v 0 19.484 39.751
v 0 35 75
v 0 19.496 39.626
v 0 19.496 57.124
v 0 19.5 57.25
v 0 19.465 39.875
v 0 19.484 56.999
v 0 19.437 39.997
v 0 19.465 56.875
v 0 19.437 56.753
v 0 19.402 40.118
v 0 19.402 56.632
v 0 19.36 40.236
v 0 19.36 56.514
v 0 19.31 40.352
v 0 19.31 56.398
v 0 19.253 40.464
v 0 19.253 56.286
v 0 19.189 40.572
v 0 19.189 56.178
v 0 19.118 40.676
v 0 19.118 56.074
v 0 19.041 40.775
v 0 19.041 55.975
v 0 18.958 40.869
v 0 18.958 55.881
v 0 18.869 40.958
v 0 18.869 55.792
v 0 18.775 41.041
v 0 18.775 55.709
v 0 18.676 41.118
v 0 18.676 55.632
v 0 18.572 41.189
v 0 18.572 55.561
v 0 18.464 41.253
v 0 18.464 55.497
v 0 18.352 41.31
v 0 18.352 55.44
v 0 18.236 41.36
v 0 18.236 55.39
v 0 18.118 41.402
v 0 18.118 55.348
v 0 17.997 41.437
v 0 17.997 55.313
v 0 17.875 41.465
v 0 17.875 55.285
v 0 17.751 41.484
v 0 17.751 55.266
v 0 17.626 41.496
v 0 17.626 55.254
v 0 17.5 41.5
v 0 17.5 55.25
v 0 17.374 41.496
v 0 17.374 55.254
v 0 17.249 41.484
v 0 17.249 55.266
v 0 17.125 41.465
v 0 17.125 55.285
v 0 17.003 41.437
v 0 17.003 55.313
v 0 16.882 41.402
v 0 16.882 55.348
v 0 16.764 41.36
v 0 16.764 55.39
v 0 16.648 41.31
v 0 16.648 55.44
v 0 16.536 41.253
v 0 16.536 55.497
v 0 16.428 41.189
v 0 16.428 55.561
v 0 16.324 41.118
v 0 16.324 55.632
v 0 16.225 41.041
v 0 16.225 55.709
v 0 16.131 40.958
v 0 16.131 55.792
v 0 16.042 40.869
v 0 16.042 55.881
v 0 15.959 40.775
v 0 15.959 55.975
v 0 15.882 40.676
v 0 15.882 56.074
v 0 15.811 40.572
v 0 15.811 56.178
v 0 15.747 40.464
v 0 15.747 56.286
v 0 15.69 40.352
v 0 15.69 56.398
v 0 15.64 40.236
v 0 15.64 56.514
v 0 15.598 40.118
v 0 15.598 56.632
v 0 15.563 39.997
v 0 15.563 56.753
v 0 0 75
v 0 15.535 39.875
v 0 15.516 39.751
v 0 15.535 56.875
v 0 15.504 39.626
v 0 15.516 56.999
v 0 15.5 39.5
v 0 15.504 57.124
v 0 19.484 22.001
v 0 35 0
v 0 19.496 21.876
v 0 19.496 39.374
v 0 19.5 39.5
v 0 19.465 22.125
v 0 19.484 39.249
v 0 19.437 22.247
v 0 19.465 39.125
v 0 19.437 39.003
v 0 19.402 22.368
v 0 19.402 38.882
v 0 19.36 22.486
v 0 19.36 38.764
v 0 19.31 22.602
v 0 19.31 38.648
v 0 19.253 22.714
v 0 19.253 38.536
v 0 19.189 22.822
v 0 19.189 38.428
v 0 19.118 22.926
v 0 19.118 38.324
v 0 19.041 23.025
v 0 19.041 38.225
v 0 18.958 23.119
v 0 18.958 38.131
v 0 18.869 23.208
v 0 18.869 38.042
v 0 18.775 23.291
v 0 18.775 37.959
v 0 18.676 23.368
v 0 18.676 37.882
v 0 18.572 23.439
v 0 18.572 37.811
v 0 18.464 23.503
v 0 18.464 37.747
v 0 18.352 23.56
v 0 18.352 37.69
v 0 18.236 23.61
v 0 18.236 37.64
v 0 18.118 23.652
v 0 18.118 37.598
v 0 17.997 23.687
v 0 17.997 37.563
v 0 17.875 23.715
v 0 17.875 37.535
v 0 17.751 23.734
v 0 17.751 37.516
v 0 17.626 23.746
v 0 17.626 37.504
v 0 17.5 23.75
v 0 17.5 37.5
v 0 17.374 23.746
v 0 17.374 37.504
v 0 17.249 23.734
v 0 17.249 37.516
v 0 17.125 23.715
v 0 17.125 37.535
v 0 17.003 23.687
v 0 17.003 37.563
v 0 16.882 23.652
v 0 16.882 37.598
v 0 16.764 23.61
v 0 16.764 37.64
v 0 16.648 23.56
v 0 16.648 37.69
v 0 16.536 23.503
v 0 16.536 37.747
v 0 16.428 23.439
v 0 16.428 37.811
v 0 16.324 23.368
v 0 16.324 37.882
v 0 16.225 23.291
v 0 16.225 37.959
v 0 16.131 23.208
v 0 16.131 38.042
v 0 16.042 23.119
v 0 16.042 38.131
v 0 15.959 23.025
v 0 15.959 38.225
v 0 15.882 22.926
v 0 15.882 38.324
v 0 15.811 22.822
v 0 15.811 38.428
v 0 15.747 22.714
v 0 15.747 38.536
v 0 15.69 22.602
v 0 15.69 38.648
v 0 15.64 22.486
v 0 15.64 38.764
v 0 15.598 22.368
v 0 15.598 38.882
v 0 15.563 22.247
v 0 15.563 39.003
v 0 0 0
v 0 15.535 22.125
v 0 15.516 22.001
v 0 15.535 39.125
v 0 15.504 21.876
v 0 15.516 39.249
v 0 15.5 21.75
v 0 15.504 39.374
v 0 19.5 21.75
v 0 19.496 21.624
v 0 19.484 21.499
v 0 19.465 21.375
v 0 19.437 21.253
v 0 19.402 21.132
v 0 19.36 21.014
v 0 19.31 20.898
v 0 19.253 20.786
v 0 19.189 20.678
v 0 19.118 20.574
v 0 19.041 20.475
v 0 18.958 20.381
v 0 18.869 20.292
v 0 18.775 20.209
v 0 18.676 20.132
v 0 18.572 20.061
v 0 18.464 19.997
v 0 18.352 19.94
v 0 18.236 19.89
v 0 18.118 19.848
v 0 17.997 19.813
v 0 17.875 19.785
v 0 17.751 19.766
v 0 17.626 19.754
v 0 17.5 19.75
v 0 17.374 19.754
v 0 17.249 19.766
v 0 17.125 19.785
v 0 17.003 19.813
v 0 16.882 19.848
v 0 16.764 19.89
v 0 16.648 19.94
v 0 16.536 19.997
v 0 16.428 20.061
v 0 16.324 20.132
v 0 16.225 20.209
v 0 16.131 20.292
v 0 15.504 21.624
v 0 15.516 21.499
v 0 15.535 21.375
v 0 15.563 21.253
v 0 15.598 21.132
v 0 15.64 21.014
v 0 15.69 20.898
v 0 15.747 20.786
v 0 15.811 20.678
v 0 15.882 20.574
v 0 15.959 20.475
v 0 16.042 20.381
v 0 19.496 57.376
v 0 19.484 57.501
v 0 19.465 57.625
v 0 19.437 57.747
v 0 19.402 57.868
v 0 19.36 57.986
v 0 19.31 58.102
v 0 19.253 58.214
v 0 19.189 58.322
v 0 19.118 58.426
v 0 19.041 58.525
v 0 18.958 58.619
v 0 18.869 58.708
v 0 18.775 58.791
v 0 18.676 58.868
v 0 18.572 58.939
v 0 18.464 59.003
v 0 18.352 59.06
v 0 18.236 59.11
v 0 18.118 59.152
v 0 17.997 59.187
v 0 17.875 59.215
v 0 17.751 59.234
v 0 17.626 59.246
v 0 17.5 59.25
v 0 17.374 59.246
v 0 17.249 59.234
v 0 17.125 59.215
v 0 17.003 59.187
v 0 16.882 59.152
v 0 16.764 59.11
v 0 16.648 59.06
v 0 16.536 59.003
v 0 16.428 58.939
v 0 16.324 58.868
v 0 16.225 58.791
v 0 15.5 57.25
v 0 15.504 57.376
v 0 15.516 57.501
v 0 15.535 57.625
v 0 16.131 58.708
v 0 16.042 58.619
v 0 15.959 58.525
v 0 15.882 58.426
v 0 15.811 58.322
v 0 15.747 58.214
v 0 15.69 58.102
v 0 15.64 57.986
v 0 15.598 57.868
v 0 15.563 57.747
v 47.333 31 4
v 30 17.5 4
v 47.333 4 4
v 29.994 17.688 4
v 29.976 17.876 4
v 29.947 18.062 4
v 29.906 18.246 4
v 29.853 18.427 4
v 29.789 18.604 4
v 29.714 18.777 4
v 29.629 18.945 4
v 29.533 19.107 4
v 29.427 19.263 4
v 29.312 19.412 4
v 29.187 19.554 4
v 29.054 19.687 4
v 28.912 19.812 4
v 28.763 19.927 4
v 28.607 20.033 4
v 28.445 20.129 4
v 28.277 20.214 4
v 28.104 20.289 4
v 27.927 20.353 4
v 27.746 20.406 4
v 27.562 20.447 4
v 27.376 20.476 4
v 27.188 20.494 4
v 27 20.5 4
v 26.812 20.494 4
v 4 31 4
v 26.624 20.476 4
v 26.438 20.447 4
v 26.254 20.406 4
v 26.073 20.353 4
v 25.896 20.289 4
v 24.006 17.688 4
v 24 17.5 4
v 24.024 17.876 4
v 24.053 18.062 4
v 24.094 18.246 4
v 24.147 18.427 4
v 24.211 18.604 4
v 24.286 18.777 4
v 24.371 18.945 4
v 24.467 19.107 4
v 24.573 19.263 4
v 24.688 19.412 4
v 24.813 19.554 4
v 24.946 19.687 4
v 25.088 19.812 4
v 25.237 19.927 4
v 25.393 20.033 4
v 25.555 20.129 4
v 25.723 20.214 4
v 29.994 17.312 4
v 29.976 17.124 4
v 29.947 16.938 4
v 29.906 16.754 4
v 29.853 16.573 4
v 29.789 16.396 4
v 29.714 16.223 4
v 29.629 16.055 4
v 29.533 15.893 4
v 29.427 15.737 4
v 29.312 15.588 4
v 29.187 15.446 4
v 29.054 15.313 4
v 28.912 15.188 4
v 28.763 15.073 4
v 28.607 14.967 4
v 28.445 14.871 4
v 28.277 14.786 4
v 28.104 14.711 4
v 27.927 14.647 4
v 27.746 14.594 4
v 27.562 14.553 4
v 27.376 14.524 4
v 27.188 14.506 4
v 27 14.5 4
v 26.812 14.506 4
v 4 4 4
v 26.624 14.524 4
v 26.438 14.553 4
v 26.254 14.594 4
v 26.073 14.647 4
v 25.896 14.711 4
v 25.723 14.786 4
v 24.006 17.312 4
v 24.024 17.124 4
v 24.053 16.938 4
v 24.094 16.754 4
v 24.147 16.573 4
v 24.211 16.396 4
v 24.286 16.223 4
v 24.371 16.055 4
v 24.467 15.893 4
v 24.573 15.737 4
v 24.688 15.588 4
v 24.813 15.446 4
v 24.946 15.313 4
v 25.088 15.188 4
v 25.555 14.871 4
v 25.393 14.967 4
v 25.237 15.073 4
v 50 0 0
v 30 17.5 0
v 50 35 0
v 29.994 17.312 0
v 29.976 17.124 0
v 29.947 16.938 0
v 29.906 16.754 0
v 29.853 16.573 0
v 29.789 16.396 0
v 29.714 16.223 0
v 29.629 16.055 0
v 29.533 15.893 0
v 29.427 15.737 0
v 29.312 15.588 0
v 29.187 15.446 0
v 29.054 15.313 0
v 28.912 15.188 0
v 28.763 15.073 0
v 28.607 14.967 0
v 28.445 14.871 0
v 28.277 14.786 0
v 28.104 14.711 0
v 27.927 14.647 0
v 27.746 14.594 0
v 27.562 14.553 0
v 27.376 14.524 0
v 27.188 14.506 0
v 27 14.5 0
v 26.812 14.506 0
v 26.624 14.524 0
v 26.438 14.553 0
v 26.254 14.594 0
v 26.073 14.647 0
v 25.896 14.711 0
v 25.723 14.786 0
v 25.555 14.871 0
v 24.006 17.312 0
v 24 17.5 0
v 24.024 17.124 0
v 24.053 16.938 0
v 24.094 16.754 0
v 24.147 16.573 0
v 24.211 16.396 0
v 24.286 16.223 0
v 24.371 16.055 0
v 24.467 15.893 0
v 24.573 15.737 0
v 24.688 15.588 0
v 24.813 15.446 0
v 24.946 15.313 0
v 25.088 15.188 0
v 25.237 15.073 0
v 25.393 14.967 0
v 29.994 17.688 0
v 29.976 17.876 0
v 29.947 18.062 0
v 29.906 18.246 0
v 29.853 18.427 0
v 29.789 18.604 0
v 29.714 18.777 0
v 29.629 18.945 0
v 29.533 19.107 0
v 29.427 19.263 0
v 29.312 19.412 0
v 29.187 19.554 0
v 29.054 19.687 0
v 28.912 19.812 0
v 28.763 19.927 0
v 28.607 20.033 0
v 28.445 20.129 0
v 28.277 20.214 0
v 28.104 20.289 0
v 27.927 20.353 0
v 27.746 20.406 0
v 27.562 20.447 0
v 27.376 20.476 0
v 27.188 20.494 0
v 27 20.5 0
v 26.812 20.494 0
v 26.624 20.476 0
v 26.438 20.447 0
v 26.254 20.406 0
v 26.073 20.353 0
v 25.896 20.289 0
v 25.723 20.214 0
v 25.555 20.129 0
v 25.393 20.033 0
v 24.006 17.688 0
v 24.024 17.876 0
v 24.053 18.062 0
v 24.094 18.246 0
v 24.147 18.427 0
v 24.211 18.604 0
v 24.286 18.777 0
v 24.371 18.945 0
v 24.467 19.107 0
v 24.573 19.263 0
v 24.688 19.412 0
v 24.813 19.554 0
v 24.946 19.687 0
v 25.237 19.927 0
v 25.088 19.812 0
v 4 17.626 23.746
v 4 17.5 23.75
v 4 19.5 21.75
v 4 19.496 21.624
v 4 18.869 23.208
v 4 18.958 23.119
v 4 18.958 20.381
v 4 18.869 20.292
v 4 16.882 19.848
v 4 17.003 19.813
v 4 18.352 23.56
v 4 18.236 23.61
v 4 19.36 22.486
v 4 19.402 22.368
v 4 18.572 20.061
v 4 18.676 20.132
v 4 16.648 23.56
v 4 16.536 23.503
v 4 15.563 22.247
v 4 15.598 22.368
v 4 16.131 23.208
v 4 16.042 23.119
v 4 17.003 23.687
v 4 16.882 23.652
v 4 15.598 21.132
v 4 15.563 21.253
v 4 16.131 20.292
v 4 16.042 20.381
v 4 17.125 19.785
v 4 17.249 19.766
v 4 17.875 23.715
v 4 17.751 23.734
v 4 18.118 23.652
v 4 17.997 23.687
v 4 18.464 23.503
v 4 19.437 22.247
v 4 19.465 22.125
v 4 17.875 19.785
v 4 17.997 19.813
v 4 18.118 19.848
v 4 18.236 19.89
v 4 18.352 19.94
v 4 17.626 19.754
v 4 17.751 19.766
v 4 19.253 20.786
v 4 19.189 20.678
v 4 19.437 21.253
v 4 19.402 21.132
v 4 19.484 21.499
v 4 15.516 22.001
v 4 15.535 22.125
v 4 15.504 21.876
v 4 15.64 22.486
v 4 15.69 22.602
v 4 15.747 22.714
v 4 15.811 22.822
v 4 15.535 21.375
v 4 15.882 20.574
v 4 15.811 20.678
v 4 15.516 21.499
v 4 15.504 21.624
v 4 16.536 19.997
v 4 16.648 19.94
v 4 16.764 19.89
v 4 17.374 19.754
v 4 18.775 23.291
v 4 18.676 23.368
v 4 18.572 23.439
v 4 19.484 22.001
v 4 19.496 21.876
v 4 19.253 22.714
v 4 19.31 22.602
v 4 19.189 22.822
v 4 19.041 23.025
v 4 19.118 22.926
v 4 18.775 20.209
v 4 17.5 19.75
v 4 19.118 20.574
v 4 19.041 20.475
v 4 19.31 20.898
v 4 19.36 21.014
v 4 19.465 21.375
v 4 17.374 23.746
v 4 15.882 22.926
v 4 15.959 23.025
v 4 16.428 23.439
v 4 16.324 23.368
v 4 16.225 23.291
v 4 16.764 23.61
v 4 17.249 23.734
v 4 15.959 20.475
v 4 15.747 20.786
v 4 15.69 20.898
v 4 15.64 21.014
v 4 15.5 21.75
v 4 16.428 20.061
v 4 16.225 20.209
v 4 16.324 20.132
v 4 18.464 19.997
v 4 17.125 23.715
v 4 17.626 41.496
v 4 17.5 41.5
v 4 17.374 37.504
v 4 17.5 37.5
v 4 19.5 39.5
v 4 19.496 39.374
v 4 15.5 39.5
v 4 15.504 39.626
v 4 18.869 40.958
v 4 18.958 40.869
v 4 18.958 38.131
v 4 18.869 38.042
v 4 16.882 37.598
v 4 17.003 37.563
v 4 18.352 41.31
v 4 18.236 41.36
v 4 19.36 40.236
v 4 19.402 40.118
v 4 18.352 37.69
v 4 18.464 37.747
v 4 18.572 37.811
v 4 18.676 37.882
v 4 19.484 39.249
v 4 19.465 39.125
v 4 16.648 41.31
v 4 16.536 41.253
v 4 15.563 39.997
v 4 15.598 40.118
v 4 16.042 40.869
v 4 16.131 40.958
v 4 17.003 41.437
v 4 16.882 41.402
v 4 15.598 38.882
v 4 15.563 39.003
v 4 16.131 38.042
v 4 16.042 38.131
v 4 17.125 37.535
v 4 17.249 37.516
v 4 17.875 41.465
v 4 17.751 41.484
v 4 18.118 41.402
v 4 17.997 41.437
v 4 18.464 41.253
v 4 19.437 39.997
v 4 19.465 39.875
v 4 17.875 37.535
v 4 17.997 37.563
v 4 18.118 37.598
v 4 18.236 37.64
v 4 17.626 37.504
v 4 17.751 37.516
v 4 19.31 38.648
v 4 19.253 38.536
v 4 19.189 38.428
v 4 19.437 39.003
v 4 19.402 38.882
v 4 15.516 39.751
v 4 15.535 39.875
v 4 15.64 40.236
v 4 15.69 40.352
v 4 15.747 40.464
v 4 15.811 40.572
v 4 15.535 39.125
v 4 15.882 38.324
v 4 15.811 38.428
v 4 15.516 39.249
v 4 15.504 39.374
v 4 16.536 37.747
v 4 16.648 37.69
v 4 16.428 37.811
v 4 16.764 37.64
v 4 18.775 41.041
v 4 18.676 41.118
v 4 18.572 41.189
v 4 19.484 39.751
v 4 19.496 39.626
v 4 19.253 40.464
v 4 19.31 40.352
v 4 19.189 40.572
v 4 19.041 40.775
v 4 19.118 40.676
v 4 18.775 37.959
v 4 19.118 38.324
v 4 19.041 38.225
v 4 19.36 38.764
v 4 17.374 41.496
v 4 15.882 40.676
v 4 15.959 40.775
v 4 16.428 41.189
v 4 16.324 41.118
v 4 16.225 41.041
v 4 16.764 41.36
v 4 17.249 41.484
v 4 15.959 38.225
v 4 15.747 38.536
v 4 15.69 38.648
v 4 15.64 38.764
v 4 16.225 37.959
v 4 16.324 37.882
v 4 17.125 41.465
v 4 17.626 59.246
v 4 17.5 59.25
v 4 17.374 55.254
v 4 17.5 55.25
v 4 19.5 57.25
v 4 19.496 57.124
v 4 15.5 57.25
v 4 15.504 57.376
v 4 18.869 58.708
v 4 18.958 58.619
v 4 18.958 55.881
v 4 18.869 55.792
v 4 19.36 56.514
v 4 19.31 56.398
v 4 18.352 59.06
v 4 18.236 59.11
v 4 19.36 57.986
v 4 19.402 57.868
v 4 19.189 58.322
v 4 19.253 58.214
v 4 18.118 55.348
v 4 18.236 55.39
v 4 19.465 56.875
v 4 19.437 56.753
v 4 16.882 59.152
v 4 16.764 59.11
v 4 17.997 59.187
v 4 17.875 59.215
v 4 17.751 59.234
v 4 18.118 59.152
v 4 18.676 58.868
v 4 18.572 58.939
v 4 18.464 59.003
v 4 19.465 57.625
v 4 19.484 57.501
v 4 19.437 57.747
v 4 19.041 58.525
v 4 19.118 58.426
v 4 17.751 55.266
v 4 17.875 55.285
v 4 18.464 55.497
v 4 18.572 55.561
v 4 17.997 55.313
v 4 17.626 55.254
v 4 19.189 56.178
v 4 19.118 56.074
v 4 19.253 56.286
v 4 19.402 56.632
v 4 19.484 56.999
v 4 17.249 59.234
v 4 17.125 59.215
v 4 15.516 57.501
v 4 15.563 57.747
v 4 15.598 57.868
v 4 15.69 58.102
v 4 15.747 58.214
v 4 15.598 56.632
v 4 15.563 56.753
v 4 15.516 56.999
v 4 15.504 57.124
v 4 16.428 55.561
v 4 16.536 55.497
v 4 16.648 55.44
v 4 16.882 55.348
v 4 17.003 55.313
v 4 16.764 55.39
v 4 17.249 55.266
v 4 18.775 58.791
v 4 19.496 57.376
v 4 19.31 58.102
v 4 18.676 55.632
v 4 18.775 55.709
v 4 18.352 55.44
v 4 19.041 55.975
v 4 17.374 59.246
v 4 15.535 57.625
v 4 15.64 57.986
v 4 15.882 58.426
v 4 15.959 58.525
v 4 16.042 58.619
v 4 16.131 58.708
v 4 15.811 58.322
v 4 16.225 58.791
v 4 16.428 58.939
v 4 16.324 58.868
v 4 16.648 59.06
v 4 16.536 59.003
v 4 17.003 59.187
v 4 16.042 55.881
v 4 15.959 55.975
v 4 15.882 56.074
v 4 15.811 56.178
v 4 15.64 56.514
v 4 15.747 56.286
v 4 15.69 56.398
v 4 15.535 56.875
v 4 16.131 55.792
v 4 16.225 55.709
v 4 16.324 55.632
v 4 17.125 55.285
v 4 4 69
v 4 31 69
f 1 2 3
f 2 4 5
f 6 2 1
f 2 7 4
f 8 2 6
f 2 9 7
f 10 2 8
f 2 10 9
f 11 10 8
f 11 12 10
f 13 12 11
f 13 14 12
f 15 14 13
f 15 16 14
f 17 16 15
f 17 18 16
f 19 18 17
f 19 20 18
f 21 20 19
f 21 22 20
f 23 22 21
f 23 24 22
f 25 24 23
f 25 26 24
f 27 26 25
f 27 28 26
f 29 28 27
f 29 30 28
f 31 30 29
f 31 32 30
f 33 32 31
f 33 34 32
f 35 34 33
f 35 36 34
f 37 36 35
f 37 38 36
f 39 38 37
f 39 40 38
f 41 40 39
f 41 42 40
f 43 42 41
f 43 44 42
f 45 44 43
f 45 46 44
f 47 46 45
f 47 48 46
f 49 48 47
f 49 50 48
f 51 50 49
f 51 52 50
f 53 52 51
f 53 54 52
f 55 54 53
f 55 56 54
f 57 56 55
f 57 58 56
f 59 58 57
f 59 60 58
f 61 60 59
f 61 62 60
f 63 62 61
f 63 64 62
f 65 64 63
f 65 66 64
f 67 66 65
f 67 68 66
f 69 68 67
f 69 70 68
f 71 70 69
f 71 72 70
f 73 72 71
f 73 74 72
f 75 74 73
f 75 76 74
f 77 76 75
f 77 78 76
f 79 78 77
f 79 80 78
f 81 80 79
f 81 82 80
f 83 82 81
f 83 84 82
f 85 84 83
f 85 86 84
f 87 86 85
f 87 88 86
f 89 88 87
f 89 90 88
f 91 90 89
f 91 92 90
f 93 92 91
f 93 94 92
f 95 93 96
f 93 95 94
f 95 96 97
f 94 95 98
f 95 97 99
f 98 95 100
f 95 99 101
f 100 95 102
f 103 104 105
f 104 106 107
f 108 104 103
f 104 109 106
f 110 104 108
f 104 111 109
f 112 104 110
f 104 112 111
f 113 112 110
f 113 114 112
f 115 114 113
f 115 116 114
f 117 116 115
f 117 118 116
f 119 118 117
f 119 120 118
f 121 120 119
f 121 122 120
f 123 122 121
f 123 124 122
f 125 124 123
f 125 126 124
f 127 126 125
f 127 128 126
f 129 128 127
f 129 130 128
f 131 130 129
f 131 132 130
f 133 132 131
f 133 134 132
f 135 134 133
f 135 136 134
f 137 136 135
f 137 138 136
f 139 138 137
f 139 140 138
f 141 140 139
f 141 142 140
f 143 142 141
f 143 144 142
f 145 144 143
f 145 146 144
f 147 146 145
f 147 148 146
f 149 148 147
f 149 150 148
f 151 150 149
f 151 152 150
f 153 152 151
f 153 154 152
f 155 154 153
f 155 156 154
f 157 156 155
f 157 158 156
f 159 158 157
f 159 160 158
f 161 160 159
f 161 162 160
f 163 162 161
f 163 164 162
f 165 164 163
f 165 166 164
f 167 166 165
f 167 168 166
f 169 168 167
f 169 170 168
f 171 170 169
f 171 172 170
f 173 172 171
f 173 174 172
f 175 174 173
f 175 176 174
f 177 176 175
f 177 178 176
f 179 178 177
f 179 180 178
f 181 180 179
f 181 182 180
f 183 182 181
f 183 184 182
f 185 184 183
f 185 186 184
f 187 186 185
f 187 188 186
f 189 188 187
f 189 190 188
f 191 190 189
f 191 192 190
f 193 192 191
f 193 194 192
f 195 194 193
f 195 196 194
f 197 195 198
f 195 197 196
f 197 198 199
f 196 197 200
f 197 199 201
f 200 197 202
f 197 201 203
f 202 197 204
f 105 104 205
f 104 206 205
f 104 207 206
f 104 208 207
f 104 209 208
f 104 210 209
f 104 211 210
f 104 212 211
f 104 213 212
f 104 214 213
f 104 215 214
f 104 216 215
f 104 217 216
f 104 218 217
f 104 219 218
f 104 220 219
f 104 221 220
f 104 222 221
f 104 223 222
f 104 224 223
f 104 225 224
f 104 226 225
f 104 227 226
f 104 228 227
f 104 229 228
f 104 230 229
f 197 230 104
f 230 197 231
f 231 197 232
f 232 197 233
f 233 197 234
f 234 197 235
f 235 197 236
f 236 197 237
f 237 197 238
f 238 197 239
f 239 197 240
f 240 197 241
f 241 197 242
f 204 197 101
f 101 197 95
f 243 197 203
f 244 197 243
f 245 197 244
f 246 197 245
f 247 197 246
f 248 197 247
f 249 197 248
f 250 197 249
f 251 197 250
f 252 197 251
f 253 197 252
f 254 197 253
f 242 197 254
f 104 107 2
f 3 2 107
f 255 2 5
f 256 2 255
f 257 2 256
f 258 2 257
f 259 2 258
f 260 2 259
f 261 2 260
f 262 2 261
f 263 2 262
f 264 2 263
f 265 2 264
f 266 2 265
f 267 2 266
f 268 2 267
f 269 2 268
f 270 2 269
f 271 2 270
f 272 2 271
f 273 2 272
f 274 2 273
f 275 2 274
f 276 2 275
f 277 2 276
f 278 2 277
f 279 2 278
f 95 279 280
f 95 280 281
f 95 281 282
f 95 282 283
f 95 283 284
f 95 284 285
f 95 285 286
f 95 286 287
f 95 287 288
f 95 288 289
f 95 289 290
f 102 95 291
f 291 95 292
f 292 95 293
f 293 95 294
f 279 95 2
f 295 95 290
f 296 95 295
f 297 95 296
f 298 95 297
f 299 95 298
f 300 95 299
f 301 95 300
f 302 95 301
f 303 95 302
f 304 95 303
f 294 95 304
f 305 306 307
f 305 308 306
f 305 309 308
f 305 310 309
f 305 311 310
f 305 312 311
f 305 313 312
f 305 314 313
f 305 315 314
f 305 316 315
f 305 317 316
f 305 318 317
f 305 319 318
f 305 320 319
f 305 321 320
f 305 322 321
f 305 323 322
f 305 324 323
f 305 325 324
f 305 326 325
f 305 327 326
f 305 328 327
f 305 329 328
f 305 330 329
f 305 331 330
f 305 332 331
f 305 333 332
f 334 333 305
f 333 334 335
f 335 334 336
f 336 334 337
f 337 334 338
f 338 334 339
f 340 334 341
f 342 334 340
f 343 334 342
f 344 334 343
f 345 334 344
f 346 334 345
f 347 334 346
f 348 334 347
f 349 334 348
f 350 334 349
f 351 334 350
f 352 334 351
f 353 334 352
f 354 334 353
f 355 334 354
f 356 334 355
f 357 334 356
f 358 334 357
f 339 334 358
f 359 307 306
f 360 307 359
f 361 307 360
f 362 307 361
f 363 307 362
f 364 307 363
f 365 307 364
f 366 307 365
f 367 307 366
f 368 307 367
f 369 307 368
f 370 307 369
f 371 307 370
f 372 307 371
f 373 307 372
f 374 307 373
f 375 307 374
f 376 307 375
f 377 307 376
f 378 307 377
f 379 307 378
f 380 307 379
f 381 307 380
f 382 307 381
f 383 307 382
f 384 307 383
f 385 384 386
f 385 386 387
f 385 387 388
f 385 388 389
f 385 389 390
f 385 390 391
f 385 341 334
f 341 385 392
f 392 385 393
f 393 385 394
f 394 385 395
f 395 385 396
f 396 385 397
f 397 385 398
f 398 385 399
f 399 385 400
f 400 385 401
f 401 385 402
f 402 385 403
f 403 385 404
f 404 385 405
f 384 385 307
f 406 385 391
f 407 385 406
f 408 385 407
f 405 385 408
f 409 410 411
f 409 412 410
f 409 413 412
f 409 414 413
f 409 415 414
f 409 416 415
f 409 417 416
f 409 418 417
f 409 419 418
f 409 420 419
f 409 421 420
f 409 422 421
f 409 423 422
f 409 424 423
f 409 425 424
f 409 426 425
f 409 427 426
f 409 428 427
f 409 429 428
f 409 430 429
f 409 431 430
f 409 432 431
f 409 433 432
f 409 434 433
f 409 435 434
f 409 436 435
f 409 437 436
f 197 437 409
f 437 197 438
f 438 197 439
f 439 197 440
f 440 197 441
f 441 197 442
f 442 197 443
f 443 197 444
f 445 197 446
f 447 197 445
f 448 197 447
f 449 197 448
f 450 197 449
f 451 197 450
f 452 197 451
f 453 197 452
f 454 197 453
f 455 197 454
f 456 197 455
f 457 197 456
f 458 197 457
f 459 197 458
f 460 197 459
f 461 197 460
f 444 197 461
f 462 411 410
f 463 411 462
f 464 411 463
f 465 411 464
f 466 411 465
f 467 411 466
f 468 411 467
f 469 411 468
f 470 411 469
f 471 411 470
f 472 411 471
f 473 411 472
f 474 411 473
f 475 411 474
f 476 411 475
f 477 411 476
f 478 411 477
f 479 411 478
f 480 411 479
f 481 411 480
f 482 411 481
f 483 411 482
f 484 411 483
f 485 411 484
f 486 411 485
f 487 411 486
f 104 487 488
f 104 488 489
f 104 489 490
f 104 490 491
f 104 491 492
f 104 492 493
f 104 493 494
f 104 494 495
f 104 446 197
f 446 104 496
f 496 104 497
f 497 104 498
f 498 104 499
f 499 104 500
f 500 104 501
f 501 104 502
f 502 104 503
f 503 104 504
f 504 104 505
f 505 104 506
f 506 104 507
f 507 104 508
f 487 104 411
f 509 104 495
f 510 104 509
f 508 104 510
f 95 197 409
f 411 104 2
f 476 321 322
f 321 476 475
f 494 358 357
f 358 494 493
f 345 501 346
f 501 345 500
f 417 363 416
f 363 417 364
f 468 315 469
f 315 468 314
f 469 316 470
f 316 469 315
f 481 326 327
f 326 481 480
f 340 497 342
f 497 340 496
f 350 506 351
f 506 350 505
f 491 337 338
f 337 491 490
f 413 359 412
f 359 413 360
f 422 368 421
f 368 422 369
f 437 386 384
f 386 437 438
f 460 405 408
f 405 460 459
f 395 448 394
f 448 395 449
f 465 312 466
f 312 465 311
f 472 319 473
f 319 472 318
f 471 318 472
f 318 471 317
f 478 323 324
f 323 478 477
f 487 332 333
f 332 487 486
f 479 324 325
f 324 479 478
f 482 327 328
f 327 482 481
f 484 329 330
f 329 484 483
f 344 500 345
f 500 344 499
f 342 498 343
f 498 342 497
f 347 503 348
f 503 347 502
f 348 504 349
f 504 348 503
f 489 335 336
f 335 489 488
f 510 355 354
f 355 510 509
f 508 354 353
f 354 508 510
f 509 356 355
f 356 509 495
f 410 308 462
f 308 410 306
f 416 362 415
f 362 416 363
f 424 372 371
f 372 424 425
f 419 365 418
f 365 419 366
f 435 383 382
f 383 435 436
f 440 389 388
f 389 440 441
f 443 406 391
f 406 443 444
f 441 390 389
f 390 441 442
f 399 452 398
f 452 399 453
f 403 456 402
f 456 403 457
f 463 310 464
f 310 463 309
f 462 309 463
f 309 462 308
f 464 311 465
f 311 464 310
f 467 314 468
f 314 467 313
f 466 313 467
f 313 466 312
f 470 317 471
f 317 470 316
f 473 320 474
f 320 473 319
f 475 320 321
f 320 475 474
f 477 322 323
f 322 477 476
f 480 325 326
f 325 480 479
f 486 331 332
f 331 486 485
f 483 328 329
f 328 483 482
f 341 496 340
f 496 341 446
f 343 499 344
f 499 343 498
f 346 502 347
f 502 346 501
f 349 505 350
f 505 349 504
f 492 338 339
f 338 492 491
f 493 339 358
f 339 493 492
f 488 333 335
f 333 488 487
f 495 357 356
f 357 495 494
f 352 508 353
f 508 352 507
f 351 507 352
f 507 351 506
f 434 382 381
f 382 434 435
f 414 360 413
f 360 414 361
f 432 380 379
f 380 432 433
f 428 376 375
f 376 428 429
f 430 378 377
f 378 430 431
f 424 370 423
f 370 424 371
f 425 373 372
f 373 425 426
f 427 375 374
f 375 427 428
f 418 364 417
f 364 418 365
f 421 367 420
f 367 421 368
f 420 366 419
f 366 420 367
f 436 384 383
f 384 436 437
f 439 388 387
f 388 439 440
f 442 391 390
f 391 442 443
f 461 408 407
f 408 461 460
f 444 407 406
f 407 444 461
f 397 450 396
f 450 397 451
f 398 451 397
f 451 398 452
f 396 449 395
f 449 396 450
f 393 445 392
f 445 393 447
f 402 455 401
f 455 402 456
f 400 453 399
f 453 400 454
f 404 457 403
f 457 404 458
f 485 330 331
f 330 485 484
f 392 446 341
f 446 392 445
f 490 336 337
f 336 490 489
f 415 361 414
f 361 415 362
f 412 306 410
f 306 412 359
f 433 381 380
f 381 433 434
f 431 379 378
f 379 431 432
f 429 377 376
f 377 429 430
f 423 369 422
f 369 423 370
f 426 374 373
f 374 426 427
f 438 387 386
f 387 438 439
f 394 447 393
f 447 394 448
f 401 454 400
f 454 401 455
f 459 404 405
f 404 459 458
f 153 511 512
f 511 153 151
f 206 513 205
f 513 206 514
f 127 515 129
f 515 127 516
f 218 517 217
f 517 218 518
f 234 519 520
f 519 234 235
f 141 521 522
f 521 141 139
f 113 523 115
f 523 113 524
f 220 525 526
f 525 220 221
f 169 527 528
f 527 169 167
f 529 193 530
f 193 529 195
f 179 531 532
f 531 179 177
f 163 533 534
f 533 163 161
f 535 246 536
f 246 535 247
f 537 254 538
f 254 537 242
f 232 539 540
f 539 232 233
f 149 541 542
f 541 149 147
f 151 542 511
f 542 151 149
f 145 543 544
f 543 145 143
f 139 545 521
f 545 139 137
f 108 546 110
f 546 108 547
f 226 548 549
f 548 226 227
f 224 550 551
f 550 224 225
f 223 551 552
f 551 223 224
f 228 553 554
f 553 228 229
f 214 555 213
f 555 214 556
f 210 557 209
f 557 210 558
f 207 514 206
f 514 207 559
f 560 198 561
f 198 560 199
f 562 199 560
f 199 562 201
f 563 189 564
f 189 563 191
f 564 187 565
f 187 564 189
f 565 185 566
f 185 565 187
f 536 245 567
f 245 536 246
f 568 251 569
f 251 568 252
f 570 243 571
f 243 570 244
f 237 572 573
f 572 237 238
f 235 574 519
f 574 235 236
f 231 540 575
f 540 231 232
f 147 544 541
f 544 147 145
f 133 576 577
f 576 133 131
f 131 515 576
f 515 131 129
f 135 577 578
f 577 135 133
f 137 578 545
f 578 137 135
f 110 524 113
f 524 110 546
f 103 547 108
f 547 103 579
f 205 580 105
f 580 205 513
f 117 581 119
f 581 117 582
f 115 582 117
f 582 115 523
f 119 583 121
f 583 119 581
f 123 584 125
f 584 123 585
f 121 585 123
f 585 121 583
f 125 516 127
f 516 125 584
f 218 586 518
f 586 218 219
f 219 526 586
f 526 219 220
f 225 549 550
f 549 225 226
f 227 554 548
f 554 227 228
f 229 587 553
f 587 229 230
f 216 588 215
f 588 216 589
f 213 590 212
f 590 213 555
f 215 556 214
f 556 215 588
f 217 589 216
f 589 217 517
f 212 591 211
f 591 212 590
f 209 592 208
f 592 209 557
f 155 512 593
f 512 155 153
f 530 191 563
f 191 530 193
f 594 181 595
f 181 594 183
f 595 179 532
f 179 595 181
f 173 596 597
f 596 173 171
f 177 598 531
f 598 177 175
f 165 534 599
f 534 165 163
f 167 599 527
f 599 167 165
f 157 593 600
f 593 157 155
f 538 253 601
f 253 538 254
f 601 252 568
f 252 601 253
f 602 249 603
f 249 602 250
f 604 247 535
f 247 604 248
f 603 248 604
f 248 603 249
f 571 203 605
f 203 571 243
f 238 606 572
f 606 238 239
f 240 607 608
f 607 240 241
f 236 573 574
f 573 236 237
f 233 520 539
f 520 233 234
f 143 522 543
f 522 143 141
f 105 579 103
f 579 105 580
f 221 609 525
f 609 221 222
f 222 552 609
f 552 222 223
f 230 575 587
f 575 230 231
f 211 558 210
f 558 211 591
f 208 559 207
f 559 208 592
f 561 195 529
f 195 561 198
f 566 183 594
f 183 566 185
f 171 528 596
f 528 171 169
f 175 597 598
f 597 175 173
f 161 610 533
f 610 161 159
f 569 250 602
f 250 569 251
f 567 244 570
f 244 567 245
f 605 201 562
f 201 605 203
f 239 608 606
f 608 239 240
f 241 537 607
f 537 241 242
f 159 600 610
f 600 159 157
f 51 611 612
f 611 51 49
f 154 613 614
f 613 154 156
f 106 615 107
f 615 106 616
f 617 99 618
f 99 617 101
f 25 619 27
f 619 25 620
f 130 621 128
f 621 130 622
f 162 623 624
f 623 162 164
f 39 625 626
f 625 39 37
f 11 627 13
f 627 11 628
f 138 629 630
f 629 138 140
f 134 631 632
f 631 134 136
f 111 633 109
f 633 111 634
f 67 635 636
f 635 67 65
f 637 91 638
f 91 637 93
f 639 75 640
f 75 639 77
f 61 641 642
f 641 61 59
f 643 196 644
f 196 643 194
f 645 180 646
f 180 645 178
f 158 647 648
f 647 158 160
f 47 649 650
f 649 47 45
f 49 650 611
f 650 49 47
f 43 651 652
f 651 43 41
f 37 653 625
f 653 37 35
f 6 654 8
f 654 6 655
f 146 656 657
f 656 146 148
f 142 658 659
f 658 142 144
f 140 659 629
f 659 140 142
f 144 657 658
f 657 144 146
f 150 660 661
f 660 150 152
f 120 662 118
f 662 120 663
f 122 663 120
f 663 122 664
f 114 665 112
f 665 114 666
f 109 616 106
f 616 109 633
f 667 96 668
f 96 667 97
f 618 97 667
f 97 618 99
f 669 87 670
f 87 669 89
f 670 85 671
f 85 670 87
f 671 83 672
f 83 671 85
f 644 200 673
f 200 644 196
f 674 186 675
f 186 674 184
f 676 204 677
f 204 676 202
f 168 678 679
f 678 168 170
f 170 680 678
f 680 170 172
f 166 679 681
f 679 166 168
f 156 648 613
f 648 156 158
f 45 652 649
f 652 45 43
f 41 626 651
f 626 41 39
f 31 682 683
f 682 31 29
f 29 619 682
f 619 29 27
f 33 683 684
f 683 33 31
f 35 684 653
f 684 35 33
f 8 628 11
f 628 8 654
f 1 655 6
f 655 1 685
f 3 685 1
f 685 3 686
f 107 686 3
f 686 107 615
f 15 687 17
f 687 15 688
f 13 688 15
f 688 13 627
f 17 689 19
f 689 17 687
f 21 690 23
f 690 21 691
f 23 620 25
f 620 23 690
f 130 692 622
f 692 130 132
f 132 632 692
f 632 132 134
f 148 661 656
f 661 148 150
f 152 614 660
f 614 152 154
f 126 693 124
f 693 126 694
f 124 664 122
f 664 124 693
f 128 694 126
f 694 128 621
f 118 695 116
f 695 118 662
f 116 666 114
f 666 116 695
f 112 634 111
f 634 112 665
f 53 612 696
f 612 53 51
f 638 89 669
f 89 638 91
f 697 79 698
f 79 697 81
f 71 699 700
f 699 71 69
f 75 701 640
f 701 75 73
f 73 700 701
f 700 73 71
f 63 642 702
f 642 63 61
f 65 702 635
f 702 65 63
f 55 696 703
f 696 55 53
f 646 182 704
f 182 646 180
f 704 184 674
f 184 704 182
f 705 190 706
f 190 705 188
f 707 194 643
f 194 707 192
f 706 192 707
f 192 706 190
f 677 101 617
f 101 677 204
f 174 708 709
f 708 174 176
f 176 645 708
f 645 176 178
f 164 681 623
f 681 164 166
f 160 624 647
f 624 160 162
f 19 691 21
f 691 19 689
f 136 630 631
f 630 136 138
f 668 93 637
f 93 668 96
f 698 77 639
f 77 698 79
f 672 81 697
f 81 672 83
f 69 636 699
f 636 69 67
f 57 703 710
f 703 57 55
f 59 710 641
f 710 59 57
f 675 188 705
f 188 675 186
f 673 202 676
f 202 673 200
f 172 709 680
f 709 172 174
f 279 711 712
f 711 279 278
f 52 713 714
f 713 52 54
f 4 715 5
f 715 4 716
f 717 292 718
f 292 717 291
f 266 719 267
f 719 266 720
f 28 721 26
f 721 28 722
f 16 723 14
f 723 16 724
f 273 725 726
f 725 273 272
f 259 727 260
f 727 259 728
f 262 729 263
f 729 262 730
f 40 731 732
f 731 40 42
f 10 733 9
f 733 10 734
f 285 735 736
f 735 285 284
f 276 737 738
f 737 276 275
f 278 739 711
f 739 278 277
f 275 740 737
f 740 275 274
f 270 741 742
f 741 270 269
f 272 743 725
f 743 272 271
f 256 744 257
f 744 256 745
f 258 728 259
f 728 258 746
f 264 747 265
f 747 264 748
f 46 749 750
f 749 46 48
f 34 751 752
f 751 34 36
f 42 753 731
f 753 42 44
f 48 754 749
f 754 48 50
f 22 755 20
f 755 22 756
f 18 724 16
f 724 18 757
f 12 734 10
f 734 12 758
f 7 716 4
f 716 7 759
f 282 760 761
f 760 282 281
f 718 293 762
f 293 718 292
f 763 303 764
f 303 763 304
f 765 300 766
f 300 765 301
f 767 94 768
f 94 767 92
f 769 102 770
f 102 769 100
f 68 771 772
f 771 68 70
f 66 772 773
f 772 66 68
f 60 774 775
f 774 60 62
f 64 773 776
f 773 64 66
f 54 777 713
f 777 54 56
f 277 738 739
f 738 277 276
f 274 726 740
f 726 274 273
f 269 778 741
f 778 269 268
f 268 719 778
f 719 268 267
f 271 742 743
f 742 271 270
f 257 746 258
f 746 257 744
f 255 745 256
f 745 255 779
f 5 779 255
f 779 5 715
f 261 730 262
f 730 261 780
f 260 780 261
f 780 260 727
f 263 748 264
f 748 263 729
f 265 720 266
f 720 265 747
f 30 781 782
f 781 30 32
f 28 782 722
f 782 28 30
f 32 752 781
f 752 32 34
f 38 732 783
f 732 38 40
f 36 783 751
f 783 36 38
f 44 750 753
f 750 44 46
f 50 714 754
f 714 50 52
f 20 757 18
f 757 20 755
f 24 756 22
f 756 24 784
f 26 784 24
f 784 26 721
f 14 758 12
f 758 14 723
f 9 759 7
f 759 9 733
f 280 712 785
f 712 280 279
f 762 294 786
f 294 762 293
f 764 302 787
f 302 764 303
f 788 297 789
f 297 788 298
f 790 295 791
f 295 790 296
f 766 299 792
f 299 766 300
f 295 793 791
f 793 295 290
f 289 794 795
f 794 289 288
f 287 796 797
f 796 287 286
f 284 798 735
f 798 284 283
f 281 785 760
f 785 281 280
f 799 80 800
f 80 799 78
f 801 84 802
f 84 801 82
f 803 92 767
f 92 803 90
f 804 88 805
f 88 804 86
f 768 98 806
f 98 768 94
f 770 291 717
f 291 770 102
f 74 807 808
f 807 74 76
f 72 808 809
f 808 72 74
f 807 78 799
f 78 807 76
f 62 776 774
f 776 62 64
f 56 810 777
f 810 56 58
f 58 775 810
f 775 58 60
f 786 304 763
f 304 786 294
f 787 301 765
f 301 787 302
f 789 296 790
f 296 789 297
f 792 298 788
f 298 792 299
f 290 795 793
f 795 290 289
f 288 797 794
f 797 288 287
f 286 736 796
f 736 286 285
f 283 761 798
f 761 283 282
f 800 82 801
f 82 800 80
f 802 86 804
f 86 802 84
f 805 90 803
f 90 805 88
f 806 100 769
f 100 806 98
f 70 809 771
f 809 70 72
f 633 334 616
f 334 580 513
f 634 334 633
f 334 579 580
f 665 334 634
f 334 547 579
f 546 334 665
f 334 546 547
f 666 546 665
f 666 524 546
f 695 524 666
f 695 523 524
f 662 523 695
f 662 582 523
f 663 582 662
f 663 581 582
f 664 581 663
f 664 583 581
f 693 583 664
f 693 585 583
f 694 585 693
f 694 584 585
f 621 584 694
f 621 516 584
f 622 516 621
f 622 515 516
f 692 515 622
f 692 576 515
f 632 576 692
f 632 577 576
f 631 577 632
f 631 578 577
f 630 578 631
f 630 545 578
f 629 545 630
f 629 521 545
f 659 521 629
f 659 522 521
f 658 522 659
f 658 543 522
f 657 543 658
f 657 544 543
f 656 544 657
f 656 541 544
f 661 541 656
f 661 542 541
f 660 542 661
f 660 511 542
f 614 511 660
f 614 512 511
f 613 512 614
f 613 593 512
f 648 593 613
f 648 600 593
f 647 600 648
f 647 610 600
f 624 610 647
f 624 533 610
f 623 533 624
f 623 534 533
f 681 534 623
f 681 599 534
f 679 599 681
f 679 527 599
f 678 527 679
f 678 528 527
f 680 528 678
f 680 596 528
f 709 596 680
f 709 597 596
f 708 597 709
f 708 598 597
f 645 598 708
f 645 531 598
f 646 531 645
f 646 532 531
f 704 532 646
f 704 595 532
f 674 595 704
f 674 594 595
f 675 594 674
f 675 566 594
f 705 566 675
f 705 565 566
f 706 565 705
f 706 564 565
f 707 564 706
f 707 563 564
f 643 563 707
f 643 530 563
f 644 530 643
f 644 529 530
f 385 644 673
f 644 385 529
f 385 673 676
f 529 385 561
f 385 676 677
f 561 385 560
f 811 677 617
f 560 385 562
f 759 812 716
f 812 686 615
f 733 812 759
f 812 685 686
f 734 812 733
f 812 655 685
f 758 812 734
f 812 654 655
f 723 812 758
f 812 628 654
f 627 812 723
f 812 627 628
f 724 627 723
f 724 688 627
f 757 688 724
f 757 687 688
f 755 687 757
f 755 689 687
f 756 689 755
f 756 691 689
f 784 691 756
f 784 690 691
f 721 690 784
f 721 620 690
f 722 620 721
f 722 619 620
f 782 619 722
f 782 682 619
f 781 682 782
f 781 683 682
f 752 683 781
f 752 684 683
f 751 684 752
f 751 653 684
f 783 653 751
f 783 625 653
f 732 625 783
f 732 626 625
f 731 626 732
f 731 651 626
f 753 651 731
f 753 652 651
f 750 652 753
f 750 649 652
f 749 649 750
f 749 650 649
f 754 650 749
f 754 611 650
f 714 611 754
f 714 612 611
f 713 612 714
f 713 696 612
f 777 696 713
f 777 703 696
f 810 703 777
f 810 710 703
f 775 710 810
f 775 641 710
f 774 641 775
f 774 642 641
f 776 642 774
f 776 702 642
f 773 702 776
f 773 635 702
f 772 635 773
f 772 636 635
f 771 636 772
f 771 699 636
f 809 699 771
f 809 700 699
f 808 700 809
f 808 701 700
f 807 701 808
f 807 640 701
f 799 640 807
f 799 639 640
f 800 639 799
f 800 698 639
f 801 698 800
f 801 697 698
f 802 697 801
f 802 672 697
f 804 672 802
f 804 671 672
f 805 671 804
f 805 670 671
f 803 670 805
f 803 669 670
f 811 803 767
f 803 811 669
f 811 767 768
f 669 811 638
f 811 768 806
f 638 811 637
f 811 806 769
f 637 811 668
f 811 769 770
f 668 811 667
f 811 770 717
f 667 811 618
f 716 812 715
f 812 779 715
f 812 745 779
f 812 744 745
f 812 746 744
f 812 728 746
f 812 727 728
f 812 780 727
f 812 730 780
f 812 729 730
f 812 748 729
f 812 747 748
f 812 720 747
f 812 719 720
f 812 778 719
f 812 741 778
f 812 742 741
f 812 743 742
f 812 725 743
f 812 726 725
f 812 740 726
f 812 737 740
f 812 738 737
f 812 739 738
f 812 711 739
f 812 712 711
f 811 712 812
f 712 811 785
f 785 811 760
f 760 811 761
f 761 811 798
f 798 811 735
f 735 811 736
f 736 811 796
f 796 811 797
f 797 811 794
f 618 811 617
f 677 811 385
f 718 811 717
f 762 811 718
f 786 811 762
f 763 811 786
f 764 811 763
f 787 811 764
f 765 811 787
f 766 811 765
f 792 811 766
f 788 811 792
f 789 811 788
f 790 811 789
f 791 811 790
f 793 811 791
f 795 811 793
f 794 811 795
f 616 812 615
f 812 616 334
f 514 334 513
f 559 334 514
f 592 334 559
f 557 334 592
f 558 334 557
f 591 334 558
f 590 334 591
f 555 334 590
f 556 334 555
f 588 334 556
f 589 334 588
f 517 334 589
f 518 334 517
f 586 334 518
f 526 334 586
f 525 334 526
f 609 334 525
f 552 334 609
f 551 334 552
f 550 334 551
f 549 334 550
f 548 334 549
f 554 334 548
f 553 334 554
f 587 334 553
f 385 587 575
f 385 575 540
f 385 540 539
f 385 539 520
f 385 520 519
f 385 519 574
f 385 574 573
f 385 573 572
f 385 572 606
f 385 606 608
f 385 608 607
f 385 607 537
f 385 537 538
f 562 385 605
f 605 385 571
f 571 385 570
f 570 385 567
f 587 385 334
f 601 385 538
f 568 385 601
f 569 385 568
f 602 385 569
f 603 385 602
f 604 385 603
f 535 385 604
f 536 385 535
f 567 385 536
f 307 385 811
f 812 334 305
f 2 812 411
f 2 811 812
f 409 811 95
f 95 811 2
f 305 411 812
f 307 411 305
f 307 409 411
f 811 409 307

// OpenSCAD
$fn=100;
/*
    module shelf_bracket
    
    parameters:
    - side_a    is a vector [length, hole diameter, number of holes]
    - side_b    is a vector [length, hole diameter, number of holes]
    - width     refers to the width of the bracket
    - thickness refers to the material thickness of the bracket
*/

module shelf_bracket( side_a = [50,6,1], side_b = [75,4,3], width = 35, thickness = 4 ) {
    
    module xhole_plate( size, h_dm, h_num, margin ) {
        
        difference() {
        
            cube(size);
            
            h_distance = (size.x - margin) / (h_num + 1);
            
            for (x = [1:h_num])
                translate([
                    margin + x * h_distance,
                    size.y/2,
                    -1])
                cylinder( d = h_dm, h = size.z + 2, $fn=100);
            }
        }
        
        difference() {
            
            union() {
                
                // side A
                xhole_plate(
                    [side_a[0], width, thickness],
                    side_a[1],
                    side_a[2],
                    thickness
                );
                
                // side B
                translate([thickness,0,0])
                rotate([0,-90,0])
                xhole_plate(
                    [side_b[0], width, thickness],
                    side_b[1],
                    side_b[2],
                    thickness
                );
                
                // stringer
                cube( [side_a[0], thickness, side_b[0]]);
                
                translate( [0, width - thickness, 0] )
                    cube( [side_a[0], thickness, side_b[0]]);
            }
            
            diag = sqrt( pow(side_a[0], 2) + pow(side_b[0], 2) );
            angle = asin (side_a[0] / diag);
            
            translate( [side_a[0], -1, 0])
            rotate( [0, -angle, 0])
                cube( [diag, width + 2, diag + 2]);  // add "#" in front of the line to see this cube in transparent manner
            
        }
    }

//shelf_bracket(
//  side_a    = [50, 6, 1],
//  side_b    = [75, 4, 3],
//  width     = 35,
//  thickness = 4
//);
    
shelf_bracket();
